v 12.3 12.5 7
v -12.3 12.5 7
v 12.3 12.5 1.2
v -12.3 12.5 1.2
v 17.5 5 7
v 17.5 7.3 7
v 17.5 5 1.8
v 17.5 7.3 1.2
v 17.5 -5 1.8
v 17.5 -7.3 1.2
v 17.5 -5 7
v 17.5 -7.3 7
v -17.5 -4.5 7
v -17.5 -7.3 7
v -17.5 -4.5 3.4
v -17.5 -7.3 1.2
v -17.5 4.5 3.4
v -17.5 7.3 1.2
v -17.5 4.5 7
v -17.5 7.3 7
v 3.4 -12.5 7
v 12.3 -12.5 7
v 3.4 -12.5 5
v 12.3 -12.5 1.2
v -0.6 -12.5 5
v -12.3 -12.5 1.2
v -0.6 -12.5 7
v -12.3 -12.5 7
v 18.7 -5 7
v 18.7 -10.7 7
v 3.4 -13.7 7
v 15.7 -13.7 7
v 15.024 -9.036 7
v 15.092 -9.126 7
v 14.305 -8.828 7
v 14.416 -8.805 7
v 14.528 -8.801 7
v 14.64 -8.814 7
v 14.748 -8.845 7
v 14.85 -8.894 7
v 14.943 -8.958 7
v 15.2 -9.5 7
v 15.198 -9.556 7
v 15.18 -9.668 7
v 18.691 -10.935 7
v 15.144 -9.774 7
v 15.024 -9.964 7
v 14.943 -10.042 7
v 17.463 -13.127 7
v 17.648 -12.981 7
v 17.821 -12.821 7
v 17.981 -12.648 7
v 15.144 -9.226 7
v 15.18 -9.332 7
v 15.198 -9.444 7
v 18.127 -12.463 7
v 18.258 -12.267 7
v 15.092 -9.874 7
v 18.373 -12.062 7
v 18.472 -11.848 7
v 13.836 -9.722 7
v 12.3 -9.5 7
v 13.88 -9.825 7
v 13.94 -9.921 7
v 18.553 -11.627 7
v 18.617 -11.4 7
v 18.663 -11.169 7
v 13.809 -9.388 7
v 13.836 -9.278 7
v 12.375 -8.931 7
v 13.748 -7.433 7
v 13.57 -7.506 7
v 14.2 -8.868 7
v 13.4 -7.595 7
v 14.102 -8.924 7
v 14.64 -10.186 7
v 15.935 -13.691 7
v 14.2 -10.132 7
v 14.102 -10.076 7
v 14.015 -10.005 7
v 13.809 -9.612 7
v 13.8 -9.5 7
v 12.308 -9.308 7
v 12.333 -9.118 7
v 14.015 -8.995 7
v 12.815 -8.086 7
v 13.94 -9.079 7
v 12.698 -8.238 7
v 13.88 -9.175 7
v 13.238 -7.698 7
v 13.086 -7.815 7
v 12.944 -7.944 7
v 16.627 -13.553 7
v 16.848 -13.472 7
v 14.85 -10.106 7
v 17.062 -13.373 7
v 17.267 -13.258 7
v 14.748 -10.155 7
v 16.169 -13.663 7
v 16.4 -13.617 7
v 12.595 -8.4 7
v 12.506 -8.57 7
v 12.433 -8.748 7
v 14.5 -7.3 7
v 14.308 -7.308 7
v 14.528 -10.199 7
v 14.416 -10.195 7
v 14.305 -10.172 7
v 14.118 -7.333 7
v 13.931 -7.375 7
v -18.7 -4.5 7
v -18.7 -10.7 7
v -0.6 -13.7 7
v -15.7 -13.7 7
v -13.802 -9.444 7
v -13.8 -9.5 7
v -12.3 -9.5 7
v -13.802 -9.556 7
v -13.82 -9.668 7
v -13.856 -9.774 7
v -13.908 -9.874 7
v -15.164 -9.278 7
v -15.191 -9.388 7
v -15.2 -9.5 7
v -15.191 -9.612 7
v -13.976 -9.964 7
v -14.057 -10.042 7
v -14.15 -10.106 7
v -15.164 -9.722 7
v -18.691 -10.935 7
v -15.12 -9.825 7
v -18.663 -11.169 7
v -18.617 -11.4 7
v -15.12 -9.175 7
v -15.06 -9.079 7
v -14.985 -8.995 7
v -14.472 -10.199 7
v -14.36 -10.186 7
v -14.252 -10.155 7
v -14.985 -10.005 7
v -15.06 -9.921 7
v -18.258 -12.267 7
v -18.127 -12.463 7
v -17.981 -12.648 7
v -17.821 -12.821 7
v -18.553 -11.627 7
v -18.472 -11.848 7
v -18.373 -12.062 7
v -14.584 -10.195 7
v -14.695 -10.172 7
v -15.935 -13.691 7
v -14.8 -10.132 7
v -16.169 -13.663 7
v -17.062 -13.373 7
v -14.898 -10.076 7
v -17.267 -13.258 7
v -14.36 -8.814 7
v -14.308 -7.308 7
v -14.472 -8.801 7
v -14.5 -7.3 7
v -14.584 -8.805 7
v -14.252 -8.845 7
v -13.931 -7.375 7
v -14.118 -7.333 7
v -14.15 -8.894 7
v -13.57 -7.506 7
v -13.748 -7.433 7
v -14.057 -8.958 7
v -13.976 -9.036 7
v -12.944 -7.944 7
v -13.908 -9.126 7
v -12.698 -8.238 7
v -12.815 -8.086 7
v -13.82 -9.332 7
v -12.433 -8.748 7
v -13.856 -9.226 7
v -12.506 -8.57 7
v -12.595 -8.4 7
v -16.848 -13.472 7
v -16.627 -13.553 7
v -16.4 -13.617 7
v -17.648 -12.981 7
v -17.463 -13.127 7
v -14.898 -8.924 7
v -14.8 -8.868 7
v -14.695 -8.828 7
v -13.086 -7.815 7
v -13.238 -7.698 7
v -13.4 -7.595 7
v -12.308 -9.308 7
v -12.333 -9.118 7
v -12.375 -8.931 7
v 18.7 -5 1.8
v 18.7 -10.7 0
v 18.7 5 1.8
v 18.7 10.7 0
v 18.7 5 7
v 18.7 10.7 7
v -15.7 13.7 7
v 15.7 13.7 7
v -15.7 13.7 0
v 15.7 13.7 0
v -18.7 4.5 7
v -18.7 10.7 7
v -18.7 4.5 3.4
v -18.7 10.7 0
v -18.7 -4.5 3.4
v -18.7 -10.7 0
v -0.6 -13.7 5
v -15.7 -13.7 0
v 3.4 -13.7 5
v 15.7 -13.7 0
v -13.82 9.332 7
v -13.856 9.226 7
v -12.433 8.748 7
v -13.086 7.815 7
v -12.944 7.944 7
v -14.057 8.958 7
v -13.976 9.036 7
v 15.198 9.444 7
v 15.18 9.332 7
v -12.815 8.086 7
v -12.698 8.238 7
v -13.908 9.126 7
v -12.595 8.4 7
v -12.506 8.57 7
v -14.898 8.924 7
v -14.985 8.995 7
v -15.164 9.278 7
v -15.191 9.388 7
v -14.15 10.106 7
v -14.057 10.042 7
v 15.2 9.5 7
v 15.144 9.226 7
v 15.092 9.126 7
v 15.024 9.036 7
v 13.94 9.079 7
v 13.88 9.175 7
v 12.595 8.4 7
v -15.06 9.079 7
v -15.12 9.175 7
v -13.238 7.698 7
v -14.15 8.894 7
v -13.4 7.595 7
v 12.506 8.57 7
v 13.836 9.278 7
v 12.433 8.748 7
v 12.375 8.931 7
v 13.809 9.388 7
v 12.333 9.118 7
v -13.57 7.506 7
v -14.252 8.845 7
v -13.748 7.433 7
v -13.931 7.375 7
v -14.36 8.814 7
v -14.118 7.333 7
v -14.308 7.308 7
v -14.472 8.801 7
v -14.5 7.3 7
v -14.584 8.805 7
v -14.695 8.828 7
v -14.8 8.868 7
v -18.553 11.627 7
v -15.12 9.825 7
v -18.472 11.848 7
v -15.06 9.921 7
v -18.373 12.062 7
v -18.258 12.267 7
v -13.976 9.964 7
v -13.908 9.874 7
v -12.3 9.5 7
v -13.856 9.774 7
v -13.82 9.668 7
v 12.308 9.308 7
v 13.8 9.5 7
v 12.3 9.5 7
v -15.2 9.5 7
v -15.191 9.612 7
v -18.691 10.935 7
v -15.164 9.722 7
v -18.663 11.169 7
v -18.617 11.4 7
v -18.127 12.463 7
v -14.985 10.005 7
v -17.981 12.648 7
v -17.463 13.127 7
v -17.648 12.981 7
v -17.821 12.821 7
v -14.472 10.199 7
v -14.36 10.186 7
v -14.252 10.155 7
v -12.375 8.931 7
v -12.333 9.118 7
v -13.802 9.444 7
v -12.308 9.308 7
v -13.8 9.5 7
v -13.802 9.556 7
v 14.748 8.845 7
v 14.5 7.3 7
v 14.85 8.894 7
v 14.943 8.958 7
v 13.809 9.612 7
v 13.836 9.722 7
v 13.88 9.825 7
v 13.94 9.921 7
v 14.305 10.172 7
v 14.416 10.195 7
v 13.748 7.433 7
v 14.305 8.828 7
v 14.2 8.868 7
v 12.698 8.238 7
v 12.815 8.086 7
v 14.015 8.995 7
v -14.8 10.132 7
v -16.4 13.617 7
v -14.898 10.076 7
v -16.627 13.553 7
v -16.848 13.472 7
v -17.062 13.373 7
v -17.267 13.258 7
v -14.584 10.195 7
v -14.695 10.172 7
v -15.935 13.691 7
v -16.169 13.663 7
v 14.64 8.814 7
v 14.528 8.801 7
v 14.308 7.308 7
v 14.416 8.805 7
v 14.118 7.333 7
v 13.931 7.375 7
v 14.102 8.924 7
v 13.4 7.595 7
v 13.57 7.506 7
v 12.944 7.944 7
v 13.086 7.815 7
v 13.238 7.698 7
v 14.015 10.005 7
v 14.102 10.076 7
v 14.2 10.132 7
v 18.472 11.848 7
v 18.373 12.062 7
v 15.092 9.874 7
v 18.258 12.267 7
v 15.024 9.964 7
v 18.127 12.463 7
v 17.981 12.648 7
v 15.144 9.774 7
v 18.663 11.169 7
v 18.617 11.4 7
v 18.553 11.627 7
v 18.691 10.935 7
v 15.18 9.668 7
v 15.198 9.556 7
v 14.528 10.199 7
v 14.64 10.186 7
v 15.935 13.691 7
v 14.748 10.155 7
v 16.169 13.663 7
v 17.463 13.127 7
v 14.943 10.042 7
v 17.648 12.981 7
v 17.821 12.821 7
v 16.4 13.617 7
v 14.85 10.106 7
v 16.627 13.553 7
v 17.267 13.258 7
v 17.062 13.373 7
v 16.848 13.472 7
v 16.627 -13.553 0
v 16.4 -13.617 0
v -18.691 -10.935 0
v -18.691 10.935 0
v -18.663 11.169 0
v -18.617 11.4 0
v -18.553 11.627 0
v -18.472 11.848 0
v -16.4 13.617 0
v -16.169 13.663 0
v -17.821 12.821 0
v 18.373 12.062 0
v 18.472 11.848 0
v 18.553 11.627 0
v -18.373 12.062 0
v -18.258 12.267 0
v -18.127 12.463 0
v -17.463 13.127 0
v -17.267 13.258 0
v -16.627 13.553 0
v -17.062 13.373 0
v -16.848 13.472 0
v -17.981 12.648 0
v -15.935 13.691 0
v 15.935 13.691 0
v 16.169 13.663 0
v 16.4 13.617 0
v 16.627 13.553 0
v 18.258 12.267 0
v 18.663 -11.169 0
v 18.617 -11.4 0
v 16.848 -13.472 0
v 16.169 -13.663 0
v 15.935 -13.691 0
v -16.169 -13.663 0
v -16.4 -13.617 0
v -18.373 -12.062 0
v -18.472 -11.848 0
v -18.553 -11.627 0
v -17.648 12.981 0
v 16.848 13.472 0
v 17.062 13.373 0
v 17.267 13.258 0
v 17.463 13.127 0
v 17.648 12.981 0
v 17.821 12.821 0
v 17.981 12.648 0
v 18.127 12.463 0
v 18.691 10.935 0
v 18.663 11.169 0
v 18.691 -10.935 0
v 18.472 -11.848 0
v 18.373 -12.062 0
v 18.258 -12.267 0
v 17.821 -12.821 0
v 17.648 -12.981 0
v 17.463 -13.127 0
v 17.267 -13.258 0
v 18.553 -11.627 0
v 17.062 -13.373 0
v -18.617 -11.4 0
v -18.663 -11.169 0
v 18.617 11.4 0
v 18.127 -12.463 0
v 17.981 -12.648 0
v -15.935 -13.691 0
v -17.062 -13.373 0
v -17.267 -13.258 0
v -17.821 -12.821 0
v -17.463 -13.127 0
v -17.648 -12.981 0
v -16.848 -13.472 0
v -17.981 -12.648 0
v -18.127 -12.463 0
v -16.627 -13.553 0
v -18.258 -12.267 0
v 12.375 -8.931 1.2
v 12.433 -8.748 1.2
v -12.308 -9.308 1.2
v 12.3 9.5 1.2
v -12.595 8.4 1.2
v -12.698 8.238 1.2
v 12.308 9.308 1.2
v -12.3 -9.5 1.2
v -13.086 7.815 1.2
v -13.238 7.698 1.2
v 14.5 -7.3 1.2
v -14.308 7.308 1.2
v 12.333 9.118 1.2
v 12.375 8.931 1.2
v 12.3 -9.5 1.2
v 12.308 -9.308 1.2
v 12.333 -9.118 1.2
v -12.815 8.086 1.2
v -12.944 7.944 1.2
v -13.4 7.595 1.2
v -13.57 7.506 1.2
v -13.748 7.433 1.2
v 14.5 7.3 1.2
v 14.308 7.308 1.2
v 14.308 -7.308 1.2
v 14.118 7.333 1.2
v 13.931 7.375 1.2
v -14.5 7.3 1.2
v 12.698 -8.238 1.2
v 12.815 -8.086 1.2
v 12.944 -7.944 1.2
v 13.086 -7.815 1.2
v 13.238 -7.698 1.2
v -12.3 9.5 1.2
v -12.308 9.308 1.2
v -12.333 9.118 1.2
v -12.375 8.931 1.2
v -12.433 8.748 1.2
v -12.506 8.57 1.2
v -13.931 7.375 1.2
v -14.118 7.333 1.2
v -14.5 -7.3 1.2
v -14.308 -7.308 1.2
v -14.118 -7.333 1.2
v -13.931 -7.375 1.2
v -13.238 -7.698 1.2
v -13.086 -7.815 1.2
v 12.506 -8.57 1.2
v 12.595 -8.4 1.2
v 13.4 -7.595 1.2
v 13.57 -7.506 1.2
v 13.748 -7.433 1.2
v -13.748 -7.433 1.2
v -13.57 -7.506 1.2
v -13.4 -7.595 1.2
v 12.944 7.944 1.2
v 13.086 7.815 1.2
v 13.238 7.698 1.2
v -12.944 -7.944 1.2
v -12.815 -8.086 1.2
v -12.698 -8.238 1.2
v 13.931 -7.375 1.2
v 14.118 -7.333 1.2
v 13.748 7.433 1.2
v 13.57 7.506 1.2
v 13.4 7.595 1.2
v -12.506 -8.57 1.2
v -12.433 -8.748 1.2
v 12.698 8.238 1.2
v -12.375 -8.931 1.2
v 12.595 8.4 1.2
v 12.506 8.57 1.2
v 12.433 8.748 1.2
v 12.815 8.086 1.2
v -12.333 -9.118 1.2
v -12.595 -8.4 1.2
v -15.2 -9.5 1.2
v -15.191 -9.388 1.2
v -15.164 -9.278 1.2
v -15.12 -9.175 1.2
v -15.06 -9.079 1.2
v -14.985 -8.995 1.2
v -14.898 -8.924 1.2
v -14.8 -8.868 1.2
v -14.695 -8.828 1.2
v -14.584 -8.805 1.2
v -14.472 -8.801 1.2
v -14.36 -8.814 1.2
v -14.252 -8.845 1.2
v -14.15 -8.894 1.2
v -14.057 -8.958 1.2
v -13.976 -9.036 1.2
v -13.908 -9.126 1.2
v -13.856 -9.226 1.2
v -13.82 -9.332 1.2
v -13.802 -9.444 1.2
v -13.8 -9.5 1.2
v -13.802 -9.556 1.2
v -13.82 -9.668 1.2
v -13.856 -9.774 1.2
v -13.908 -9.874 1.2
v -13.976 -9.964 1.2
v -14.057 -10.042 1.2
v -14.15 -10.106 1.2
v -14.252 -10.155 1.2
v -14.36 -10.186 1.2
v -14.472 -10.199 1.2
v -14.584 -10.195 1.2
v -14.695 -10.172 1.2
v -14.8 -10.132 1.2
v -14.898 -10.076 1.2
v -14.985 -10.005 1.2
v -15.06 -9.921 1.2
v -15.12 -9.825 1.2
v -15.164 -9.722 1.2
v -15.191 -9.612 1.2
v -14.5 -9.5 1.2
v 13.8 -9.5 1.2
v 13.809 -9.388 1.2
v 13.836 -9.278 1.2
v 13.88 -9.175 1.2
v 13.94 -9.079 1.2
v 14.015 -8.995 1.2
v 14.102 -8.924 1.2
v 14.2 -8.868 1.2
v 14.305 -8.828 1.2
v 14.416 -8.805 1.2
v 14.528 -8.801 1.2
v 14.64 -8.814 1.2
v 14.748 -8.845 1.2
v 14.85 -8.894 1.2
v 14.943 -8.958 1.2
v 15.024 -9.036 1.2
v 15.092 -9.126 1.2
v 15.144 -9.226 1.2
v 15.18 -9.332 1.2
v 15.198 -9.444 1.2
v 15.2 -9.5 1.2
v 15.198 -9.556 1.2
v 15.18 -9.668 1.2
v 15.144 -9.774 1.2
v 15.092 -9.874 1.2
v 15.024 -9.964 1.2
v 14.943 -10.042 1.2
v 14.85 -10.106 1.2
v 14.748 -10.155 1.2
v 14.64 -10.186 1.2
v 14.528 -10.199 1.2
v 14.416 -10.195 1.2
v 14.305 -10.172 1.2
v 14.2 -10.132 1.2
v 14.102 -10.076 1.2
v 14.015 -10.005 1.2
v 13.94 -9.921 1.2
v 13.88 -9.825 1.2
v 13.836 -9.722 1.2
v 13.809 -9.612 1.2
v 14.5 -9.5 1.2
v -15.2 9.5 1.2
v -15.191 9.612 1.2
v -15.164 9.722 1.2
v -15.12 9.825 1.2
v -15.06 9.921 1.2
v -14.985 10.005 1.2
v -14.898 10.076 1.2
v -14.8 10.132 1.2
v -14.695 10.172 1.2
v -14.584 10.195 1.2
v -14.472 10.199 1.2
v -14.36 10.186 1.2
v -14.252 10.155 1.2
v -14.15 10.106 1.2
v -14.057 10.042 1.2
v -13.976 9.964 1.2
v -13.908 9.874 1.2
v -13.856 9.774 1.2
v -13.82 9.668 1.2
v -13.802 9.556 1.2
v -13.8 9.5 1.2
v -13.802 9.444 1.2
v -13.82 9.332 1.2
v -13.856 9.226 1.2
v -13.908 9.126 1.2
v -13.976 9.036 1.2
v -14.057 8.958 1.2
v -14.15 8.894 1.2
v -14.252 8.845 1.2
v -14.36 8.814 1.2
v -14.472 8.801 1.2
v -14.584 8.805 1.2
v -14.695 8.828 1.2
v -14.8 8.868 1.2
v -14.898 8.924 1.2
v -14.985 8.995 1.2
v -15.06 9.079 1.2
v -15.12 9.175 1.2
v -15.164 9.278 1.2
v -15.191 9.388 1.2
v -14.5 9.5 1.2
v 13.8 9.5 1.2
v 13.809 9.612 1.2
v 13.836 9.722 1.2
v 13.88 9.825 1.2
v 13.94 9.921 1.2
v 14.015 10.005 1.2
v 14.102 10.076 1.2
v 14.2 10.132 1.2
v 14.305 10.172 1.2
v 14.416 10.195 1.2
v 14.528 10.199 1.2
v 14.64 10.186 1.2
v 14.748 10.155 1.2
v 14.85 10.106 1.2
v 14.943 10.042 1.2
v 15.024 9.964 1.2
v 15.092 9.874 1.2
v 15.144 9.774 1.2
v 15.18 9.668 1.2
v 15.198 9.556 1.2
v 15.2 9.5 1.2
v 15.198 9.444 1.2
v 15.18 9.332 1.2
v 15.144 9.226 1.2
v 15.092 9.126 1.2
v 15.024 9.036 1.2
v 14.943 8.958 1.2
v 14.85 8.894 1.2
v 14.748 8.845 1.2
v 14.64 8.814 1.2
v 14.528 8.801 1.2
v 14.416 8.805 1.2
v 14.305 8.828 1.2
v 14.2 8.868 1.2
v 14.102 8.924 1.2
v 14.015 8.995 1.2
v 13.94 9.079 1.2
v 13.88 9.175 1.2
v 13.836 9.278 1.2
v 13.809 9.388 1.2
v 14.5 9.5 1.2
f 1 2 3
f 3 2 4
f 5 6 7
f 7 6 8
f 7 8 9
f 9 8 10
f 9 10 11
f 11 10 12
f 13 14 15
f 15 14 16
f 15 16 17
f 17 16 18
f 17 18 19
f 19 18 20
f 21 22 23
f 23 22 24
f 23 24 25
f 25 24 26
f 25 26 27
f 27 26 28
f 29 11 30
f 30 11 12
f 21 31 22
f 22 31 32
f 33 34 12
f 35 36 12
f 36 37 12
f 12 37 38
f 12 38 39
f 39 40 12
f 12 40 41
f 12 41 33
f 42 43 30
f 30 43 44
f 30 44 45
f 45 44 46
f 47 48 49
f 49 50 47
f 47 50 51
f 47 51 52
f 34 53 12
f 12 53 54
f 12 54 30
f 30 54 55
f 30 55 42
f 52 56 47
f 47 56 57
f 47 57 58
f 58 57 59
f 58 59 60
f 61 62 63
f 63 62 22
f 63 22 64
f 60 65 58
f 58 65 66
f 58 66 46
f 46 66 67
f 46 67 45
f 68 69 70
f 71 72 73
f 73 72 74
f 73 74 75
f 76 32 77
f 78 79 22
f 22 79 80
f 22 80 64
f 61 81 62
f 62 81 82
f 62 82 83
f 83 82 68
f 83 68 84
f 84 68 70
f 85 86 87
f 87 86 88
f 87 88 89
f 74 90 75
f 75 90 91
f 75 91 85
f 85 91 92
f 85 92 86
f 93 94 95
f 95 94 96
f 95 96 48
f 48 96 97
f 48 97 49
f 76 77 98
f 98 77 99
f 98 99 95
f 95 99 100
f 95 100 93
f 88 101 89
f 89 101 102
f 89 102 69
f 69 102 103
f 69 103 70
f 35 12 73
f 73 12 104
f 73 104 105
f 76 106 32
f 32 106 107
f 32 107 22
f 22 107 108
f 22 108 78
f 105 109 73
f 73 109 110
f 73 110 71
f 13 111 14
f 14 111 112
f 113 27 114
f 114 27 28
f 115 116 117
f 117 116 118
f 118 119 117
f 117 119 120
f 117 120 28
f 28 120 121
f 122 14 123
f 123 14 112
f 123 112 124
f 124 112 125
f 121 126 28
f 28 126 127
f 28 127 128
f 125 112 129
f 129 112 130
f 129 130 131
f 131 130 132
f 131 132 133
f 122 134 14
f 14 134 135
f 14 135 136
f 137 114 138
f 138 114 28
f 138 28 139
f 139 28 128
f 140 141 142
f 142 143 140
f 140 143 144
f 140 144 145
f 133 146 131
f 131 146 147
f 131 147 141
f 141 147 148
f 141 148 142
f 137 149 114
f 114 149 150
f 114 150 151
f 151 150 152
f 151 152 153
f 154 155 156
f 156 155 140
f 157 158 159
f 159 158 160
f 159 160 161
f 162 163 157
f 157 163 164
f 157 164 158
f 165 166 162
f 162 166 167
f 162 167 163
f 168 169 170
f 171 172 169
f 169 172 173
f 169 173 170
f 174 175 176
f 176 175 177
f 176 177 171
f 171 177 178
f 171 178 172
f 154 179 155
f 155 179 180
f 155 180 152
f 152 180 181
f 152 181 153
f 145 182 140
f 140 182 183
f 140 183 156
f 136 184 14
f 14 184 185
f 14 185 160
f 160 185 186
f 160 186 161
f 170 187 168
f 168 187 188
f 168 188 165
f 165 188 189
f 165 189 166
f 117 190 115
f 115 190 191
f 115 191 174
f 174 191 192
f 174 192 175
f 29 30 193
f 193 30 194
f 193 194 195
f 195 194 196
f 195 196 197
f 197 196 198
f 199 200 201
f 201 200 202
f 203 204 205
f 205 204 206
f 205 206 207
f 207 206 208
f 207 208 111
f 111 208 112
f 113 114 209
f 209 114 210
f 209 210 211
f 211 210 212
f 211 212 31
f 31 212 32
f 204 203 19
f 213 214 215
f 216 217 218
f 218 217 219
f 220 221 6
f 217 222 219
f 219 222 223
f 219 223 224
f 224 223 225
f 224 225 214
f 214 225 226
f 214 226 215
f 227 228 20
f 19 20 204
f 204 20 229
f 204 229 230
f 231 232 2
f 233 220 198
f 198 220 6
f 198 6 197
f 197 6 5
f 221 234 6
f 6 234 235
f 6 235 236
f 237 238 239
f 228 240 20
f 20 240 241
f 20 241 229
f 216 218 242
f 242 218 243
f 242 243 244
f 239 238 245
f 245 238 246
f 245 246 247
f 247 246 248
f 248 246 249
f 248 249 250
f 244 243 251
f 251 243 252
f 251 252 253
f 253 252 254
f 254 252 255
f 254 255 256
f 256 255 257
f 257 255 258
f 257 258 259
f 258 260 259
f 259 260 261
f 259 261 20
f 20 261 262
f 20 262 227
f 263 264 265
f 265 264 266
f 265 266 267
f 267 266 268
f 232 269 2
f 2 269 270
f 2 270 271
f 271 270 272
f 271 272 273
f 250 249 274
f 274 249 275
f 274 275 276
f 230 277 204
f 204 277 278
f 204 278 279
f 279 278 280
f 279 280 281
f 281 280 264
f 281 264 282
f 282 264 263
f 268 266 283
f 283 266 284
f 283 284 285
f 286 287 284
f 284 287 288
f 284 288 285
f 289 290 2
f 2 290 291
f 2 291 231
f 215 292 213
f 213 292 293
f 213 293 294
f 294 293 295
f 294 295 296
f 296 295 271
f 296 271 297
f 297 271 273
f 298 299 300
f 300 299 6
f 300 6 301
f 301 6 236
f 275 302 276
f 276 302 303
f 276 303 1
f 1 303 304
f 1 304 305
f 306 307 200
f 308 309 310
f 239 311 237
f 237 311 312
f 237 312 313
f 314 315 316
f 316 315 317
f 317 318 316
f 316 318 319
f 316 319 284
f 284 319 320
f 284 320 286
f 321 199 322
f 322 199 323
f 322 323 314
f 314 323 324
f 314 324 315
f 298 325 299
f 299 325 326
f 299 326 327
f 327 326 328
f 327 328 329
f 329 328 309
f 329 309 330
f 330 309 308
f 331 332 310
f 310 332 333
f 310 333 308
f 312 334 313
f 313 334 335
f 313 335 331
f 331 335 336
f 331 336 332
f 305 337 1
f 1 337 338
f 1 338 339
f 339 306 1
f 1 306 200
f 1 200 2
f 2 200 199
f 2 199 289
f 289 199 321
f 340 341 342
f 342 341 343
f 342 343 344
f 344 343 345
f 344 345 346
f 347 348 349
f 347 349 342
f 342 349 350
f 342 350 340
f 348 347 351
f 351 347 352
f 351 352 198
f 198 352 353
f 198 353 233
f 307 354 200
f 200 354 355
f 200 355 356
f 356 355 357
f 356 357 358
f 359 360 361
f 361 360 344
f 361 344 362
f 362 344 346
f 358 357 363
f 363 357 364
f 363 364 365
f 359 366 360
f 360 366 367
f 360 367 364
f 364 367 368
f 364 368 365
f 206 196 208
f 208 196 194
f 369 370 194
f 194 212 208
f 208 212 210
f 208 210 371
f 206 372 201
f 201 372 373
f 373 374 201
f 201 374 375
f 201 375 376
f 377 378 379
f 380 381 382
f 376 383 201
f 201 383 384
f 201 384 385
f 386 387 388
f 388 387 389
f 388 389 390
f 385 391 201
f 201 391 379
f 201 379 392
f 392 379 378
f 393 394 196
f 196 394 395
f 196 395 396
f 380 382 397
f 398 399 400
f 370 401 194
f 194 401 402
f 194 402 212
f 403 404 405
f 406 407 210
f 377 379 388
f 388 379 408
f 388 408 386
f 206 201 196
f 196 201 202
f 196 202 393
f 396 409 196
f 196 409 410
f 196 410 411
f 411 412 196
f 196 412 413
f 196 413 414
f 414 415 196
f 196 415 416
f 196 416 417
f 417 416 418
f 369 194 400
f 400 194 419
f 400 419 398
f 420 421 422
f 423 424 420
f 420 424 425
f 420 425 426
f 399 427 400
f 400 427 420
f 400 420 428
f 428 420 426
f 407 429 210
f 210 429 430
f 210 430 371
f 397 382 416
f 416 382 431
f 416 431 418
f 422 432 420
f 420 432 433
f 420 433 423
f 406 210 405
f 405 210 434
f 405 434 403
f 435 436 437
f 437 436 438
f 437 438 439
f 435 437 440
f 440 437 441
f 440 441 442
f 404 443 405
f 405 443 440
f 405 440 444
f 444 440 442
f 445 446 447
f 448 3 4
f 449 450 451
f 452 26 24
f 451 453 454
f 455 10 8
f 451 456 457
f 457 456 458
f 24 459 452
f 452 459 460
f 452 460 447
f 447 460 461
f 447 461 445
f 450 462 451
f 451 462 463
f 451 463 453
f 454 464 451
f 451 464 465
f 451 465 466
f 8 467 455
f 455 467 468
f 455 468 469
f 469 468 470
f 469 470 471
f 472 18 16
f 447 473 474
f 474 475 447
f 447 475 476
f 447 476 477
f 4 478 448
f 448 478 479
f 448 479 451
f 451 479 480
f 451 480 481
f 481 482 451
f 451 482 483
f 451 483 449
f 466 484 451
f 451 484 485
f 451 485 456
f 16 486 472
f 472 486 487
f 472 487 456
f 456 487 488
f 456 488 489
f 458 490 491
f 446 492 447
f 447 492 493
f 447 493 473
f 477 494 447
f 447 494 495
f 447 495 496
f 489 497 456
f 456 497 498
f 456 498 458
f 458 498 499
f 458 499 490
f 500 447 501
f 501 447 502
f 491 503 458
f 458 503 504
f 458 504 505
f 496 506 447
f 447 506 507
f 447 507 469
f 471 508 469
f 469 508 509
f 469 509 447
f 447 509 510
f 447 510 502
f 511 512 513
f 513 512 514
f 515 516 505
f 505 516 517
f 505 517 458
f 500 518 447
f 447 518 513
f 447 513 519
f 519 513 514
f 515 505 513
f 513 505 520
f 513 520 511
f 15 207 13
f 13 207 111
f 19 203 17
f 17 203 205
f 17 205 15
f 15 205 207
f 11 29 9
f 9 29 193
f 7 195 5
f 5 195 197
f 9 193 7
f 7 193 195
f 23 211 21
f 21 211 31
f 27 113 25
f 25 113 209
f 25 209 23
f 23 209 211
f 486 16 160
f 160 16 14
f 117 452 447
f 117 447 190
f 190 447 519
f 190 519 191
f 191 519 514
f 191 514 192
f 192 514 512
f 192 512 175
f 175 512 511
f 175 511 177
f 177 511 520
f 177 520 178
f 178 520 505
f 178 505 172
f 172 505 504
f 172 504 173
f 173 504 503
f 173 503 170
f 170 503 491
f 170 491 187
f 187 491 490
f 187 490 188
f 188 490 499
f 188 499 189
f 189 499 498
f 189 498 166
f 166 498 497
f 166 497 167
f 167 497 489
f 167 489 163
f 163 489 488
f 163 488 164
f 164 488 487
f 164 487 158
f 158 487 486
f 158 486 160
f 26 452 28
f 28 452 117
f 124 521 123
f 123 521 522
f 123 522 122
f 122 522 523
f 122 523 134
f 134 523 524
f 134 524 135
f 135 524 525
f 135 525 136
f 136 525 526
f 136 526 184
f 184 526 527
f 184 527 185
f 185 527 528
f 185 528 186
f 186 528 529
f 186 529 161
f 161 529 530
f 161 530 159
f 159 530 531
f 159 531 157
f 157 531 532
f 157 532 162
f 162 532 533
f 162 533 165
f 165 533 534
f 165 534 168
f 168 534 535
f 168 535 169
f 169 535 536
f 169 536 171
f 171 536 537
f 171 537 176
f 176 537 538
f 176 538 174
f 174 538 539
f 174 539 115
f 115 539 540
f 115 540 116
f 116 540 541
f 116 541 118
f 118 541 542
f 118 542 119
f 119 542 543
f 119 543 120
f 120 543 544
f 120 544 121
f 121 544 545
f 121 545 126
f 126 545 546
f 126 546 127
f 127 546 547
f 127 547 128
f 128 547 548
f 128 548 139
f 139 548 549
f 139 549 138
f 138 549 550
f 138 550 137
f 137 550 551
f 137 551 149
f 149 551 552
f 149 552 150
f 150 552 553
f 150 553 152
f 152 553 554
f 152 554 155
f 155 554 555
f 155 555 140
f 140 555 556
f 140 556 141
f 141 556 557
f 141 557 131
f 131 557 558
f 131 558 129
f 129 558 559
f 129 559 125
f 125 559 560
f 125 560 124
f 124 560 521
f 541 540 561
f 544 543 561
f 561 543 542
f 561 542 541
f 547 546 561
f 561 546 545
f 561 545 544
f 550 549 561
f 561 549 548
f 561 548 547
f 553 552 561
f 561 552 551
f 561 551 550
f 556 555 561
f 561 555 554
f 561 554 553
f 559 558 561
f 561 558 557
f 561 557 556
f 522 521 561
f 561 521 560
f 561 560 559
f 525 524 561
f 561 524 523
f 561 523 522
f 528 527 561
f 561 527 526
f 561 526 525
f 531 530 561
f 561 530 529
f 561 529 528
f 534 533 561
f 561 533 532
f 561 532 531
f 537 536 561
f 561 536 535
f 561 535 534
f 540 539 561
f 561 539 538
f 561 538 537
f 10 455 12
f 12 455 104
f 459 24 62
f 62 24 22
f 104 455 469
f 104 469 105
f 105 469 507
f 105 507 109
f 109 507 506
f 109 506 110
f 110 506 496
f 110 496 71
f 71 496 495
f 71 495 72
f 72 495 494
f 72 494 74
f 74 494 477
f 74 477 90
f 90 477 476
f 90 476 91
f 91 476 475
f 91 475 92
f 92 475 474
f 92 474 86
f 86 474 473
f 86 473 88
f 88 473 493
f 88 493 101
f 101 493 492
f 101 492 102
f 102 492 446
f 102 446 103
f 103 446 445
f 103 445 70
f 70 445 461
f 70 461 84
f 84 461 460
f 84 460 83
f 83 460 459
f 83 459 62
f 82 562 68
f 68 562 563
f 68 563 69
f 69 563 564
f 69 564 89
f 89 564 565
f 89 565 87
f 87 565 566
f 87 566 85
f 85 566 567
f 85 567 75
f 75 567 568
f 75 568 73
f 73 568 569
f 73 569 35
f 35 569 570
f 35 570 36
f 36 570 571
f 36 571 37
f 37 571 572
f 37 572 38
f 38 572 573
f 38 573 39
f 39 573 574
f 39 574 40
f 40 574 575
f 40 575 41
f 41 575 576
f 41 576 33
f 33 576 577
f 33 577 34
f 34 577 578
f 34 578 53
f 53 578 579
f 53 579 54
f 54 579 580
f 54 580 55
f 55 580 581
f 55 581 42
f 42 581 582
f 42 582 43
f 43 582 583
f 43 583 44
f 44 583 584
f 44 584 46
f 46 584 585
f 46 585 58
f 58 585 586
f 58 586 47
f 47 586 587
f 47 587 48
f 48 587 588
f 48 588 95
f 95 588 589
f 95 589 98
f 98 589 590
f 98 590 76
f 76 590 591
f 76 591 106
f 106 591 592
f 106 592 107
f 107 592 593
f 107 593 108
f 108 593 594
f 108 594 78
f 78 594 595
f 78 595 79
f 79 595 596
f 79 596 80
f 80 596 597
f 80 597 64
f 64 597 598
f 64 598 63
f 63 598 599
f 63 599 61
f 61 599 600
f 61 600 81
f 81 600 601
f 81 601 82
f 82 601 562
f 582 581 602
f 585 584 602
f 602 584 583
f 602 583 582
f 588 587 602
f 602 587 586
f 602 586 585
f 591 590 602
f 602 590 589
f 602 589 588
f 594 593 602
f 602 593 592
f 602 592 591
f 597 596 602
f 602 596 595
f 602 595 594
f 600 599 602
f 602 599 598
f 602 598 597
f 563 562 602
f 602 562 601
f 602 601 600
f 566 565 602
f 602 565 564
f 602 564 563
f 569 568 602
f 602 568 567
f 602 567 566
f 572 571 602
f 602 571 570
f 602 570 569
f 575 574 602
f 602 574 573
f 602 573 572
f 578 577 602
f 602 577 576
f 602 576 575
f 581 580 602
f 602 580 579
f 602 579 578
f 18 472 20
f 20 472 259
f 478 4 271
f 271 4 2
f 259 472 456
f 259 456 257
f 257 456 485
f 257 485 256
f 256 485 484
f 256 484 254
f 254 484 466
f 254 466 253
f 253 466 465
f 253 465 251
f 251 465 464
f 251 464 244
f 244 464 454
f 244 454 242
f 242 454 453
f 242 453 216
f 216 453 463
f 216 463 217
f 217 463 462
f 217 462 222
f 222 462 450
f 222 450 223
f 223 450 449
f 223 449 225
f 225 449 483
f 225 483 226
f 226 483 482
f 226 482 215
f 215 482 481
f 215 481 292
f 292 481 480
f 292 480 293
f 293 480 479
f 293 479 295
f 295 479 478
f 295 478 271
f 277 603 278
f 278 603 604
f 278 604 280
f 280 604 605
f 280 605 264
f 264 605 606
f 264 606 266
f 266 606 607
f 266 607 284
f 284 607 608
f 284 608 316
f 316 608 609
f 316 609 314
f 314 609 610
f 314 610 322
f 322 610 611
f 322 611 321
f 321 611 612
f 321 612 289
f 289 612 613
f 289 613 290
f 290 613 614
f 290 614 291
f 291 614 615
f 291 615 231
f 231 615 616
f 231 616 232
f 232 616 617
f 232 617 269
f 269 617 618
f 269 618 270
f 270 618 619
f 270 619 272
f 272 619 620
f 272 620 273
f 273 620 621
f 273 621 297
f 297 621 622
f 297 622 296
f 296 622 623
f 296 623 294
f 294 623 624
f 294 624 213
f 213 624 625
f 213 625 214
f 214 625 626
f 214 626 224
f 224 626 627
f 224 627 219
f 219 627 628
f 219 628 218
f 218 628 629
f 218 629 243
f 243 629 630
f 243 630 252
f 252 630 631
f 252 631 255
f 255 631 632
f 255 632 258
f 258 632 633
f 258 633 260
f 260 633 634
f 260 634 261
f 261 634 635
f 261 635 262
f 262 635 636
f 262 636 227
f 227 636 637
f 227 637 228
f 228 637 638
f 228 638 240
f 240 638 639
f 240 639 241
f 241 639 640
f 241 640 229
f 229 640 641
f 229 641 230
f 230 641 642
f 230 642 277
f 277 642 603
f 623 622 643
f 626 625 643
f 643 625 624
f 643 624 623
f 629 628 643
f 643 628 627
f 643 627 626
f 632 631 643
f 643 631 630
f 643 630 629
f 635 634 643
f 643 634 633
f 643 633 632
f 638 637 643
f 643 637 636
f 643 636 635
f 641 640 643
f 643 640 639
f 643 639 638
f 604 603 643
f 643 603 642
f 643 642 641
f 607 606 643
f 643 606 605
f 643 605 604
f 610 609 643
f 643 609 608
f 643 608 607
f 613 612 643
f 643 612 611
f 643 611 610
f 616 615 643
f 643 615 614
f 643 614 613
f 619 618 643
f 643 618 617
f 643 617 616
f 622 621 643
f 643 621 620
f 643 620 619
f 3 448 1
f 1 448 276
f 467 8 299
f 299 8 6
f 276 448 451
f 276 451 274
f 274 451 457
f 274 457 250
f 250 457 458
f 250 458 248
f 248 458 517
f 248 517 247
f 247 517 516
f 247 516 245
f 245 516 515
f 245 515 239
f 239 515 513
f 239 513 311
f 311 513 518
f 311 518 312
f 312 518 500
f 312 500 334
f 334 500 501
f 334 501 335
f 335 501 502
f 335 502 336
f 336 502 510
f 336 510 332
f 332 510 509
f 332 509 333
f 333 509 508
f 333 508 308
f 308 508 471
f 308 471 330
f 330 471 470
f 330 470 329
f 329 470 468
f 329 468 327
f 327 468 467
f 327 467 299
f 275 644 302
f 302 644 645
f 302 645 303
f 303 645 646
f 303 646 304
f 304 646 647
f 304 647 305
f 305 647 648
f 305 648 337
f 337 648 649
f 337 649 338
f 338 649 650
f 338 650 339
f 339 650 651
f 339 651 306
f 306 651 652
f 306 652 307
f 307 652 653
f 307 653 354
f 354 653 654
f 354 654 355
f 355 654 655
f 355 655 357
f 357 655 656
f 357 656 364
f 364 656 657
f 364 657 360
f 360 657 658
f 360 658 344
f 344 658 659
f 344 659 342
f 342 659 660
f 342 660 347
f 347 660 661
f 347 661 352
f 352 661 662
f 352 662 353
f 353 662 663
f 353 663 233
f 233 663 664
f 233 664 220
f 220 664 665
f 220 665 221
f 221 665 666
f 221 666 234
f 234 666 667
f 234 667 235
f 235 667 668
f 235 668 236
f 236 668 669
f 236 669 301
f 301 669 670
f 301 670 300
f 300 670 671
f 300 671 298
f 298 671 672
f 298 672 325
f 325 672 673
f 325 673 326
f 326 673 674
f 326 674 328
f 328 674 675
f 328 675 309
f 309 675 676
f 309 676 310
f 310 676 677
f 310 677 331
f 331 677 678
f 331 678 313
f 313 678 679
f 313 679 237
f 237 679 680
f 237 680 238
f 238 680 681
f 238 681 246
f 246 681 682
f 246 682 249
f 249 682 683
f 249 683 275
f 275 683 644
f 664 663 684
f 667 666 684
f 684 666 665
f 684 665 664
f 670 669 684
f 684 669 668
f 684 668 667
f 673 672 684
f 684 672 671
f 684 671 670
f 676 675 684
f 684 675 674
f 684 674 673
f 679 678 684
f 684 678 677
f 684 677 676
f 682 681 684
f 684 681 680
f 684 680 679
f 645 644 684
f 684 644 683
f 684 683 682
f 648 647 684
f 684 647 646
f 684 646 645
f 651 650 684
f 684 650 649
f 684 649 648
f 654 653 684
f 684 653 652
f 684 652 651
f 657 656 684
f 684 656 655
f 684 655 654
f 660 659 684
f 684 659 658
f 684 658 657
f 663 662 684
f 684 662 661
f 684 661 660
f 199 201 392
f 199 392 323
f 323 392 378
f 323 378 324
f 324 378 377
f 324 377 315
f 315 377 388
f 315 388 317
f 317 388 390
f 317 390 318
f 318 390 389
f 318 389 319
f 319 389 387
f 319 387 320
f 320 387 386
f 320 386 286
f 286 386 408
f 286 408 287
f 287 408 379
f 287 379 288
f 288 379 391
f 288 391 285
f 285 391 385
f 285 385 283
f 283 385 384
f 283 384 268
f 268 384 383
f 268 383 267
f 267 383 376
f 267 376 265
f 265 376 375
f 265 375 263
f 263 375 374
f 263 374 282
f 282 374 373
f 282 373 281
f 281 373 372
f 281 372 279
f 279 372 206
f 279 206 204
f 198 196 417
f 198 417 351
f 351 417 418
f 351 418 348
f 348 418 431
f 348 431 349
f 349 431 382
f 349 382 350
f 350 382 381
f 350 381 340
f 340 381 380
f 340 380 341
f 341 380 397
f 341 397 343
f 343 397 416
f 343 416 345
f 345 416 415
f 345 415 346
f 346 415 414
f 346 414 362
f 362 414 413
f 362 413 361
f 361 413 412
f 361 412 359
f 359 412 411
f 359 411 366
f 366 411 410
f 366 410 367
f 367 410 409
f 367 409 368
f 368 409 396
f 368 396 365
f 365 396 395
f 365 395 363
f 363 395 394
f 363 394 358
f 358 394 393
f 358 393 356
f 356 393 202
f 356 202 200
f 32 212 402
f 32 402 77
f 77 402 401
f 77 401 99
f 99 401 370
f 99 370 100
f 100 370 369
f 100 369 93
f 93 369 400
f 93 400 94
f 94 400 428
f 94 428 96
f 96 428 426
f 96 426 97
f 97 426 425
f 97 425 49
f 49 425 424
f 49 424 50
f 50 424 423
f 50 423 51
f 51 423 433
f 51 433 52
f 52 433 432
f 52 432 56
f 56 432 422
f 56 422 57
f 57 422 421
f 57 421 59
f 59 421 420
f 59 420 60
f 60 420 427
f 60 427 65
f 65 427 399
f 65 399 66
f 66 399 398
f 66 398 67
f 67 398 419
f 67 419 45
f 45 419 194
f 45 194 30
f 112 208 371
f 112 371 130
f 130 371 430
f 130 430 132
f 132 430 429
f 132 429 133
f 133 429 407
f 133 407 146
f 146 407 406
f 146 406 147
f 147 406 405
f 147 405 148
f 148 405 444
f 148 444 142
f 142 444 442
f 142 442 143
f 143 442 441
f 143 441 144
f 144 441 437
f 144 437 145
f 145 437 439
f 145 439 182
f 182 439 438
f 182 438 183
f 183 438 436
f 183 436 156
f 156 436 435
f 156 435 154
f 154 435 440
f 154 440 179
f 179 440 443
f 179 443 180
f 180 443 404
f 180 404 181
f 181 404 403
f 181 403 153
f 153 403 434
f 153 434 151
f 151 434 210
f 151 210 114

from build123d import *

# Parameters (mm, degrees)
SKETCH_1_W          = 37.4
SKETCH_1_H          = 27.4
EXTRUDE_1_DEPTH     = 7
SHELL_1_T           = -1.2
SKETCH_3_W          = 2
SKETCH_3_H          = 9
CUT_EXTRUDE_1_DEPTH = 3.6
SKETCH_4_W          = 2
SKETCH_4_H          = 10
CUT_EXTRUDE_2_DEPTH = 5.2
SKETCH_5_W          = 4
SKETCH_5_H          = 2
CUT_EXTRUDE_3_DEPTH = 2
SKETCH_6_R          = 0.7
EXTRUDE_2_DEPTH     = 5.8
FILLET_1_R          = 3


with BuildPart() as part:
    # 草图1 → 凸台-拉伸1 (new body)
    with BuildSketch(Plane.XY):
        Rectangle(SKETCH_1_W, SKETCH_1_H)
    extrude(amount=EXTRUDE_1_DEPTH)

    # 抽壳1
    shell_1_openings = [part.faces().sort_by_distance(p)[0] for p in [
        (0, 0, 7),
    ]]
    offset(amount=SHELL_1_T, openings=shell_1_openings, kind=Kind.INTERSECTION)

    # 草图3 → 切除-拉伸1 (cut)
    with BuildSketch(Plane.XY.offset(7)):
        with Locations((-18.02869535, 0)):
            Rectangle(SKETCH_3_W, SKETCH_3_H)
    extrude(amount=-CUT_EXTRUDE_1_DEPTH, mode=Mode.SUBTRACT)

    # 草图4 → 切除-拉伸2 (cut)
    with BuildSketch(Plane.XY.offset(7)):
        with Locations((18.188969671, 0)):
            Rectangle(SKETCH_4_W, SKETCH_4_H)
    extrude(amount=-CUT_EXTRUDE_2_DEPTH, mode=Mode.SUBTRACT)

    # 草图5 → 切除-拉伸3 (cut)
    with BuildSketch(Plane.XY.offset(7)):
        with Locations((1.4, -13.132972029)):
            Rectangle(SKETCH_5_W, SKETCH_5_H)
    extrude(amount=-CUT_EXTRUDE_3_DEPTH, mode=Mode.SUBTRACT)

    # 草图6 → 凸台-拉伸2 (add)
    # profile 1 of 4: a face of its own
    with BuildSketch(Plane.XY.offset(1.2)):
        with BuildLine():
            Line((14.5, -7.3), (17.5, -7.3))
            Line((17.5, -7.3), (17.5, -12.5))
            Line((17.5, -12.5), (12.3, -12.5))
            Line((12.3, -12.5), (12.3, -9.5))
            ThreePointArc((12.3, -9.5), (12.944365081, -7.944365081), (14.5, -7.3))
        make_face()
        with Locations((14.5, -9.5)):
            Circle(SKETCH_6_R, mode=Mode.SUBTRACT)
    # profile 2 of 4: a face of its own
    with BuildSketch(Plane.XY.offset(1.2)):
        with BuildLine():
            Line((-12.3, -12.5), (-17.5, -12.5))
            Line((-17.5, -12.5), (-17.5, -7.3))
            Line((-17.5, -7.3), (-14.5, -7.3))
            ThreePointArc((-14.5, -7.3), (-12.944365081, -7.944365081), (-12.3, -9.5))
            Line((-12.3, -9.5), (-12.3, -12.5))
        make_face()
        with Locations((-14.5, -9.5)):
            Circle(SKETCH_6_R, mode=Mode.SUBTRACT)
    # profile 3 of 4: a face of its own
    with BuildSketch(Plane.XY.offset(1.2)):
        with BuildLine():
            Line((-17.5, 12.5), (-17.5, 7.3))
            Line((-17.5, 7.3), (-14.5, 7.3))
            ThreePointArc((-14.5, 7.3), (-12.944365081, 7.944365081), (-12.3, 9.5))
            Line((-12.3, 9.5), (-12.3, 12.5))
            Line((-12.3, 12.5), (-17.5, 12.5))
        make_face()
        with Locations((-14.5, 9.5)):
            Circle(SKETCH_6_R, mode=Mode.SUBTRACT)
    # profile 4 of 4: a face of its own
    with BuildSketch(Plane.XY.offset(1.2)):
        with BuildLine():
            Line((17.5, 12.5), (17.5, 7.3))
            Line((17.5, 7.3), (14.5, 7.3))
            ThreePointArc((14.5, 7.3), (12.944365081, 7.944365081), (12.3, 9.5))
            Line((12.3, 9.5), (12.3, 12.5))
            Line((12.3, 12.5), (17.5, 12.5))
        make_face()
        with Locations((14.5, 9.5)):
            Circle(SKETCH_6_R, mode=Mode.SUBTRACT)
    extrude(amount=EXTRUDE_2_DEPTH)

    # 圆角1
    fillet_1_edges = [part.edges().sort_by_distance(p)[0] for p in [
        (18.7, -13.7, 3.5),
        (-18.7, -13.7, 3.5),
        (-18.7, 13.7, 3.5),
        (18.7, 13.7, 3.5),
    ]]
    fillet(fillet_1_edges, radius=FILLET_1_R)


solid = part.part
